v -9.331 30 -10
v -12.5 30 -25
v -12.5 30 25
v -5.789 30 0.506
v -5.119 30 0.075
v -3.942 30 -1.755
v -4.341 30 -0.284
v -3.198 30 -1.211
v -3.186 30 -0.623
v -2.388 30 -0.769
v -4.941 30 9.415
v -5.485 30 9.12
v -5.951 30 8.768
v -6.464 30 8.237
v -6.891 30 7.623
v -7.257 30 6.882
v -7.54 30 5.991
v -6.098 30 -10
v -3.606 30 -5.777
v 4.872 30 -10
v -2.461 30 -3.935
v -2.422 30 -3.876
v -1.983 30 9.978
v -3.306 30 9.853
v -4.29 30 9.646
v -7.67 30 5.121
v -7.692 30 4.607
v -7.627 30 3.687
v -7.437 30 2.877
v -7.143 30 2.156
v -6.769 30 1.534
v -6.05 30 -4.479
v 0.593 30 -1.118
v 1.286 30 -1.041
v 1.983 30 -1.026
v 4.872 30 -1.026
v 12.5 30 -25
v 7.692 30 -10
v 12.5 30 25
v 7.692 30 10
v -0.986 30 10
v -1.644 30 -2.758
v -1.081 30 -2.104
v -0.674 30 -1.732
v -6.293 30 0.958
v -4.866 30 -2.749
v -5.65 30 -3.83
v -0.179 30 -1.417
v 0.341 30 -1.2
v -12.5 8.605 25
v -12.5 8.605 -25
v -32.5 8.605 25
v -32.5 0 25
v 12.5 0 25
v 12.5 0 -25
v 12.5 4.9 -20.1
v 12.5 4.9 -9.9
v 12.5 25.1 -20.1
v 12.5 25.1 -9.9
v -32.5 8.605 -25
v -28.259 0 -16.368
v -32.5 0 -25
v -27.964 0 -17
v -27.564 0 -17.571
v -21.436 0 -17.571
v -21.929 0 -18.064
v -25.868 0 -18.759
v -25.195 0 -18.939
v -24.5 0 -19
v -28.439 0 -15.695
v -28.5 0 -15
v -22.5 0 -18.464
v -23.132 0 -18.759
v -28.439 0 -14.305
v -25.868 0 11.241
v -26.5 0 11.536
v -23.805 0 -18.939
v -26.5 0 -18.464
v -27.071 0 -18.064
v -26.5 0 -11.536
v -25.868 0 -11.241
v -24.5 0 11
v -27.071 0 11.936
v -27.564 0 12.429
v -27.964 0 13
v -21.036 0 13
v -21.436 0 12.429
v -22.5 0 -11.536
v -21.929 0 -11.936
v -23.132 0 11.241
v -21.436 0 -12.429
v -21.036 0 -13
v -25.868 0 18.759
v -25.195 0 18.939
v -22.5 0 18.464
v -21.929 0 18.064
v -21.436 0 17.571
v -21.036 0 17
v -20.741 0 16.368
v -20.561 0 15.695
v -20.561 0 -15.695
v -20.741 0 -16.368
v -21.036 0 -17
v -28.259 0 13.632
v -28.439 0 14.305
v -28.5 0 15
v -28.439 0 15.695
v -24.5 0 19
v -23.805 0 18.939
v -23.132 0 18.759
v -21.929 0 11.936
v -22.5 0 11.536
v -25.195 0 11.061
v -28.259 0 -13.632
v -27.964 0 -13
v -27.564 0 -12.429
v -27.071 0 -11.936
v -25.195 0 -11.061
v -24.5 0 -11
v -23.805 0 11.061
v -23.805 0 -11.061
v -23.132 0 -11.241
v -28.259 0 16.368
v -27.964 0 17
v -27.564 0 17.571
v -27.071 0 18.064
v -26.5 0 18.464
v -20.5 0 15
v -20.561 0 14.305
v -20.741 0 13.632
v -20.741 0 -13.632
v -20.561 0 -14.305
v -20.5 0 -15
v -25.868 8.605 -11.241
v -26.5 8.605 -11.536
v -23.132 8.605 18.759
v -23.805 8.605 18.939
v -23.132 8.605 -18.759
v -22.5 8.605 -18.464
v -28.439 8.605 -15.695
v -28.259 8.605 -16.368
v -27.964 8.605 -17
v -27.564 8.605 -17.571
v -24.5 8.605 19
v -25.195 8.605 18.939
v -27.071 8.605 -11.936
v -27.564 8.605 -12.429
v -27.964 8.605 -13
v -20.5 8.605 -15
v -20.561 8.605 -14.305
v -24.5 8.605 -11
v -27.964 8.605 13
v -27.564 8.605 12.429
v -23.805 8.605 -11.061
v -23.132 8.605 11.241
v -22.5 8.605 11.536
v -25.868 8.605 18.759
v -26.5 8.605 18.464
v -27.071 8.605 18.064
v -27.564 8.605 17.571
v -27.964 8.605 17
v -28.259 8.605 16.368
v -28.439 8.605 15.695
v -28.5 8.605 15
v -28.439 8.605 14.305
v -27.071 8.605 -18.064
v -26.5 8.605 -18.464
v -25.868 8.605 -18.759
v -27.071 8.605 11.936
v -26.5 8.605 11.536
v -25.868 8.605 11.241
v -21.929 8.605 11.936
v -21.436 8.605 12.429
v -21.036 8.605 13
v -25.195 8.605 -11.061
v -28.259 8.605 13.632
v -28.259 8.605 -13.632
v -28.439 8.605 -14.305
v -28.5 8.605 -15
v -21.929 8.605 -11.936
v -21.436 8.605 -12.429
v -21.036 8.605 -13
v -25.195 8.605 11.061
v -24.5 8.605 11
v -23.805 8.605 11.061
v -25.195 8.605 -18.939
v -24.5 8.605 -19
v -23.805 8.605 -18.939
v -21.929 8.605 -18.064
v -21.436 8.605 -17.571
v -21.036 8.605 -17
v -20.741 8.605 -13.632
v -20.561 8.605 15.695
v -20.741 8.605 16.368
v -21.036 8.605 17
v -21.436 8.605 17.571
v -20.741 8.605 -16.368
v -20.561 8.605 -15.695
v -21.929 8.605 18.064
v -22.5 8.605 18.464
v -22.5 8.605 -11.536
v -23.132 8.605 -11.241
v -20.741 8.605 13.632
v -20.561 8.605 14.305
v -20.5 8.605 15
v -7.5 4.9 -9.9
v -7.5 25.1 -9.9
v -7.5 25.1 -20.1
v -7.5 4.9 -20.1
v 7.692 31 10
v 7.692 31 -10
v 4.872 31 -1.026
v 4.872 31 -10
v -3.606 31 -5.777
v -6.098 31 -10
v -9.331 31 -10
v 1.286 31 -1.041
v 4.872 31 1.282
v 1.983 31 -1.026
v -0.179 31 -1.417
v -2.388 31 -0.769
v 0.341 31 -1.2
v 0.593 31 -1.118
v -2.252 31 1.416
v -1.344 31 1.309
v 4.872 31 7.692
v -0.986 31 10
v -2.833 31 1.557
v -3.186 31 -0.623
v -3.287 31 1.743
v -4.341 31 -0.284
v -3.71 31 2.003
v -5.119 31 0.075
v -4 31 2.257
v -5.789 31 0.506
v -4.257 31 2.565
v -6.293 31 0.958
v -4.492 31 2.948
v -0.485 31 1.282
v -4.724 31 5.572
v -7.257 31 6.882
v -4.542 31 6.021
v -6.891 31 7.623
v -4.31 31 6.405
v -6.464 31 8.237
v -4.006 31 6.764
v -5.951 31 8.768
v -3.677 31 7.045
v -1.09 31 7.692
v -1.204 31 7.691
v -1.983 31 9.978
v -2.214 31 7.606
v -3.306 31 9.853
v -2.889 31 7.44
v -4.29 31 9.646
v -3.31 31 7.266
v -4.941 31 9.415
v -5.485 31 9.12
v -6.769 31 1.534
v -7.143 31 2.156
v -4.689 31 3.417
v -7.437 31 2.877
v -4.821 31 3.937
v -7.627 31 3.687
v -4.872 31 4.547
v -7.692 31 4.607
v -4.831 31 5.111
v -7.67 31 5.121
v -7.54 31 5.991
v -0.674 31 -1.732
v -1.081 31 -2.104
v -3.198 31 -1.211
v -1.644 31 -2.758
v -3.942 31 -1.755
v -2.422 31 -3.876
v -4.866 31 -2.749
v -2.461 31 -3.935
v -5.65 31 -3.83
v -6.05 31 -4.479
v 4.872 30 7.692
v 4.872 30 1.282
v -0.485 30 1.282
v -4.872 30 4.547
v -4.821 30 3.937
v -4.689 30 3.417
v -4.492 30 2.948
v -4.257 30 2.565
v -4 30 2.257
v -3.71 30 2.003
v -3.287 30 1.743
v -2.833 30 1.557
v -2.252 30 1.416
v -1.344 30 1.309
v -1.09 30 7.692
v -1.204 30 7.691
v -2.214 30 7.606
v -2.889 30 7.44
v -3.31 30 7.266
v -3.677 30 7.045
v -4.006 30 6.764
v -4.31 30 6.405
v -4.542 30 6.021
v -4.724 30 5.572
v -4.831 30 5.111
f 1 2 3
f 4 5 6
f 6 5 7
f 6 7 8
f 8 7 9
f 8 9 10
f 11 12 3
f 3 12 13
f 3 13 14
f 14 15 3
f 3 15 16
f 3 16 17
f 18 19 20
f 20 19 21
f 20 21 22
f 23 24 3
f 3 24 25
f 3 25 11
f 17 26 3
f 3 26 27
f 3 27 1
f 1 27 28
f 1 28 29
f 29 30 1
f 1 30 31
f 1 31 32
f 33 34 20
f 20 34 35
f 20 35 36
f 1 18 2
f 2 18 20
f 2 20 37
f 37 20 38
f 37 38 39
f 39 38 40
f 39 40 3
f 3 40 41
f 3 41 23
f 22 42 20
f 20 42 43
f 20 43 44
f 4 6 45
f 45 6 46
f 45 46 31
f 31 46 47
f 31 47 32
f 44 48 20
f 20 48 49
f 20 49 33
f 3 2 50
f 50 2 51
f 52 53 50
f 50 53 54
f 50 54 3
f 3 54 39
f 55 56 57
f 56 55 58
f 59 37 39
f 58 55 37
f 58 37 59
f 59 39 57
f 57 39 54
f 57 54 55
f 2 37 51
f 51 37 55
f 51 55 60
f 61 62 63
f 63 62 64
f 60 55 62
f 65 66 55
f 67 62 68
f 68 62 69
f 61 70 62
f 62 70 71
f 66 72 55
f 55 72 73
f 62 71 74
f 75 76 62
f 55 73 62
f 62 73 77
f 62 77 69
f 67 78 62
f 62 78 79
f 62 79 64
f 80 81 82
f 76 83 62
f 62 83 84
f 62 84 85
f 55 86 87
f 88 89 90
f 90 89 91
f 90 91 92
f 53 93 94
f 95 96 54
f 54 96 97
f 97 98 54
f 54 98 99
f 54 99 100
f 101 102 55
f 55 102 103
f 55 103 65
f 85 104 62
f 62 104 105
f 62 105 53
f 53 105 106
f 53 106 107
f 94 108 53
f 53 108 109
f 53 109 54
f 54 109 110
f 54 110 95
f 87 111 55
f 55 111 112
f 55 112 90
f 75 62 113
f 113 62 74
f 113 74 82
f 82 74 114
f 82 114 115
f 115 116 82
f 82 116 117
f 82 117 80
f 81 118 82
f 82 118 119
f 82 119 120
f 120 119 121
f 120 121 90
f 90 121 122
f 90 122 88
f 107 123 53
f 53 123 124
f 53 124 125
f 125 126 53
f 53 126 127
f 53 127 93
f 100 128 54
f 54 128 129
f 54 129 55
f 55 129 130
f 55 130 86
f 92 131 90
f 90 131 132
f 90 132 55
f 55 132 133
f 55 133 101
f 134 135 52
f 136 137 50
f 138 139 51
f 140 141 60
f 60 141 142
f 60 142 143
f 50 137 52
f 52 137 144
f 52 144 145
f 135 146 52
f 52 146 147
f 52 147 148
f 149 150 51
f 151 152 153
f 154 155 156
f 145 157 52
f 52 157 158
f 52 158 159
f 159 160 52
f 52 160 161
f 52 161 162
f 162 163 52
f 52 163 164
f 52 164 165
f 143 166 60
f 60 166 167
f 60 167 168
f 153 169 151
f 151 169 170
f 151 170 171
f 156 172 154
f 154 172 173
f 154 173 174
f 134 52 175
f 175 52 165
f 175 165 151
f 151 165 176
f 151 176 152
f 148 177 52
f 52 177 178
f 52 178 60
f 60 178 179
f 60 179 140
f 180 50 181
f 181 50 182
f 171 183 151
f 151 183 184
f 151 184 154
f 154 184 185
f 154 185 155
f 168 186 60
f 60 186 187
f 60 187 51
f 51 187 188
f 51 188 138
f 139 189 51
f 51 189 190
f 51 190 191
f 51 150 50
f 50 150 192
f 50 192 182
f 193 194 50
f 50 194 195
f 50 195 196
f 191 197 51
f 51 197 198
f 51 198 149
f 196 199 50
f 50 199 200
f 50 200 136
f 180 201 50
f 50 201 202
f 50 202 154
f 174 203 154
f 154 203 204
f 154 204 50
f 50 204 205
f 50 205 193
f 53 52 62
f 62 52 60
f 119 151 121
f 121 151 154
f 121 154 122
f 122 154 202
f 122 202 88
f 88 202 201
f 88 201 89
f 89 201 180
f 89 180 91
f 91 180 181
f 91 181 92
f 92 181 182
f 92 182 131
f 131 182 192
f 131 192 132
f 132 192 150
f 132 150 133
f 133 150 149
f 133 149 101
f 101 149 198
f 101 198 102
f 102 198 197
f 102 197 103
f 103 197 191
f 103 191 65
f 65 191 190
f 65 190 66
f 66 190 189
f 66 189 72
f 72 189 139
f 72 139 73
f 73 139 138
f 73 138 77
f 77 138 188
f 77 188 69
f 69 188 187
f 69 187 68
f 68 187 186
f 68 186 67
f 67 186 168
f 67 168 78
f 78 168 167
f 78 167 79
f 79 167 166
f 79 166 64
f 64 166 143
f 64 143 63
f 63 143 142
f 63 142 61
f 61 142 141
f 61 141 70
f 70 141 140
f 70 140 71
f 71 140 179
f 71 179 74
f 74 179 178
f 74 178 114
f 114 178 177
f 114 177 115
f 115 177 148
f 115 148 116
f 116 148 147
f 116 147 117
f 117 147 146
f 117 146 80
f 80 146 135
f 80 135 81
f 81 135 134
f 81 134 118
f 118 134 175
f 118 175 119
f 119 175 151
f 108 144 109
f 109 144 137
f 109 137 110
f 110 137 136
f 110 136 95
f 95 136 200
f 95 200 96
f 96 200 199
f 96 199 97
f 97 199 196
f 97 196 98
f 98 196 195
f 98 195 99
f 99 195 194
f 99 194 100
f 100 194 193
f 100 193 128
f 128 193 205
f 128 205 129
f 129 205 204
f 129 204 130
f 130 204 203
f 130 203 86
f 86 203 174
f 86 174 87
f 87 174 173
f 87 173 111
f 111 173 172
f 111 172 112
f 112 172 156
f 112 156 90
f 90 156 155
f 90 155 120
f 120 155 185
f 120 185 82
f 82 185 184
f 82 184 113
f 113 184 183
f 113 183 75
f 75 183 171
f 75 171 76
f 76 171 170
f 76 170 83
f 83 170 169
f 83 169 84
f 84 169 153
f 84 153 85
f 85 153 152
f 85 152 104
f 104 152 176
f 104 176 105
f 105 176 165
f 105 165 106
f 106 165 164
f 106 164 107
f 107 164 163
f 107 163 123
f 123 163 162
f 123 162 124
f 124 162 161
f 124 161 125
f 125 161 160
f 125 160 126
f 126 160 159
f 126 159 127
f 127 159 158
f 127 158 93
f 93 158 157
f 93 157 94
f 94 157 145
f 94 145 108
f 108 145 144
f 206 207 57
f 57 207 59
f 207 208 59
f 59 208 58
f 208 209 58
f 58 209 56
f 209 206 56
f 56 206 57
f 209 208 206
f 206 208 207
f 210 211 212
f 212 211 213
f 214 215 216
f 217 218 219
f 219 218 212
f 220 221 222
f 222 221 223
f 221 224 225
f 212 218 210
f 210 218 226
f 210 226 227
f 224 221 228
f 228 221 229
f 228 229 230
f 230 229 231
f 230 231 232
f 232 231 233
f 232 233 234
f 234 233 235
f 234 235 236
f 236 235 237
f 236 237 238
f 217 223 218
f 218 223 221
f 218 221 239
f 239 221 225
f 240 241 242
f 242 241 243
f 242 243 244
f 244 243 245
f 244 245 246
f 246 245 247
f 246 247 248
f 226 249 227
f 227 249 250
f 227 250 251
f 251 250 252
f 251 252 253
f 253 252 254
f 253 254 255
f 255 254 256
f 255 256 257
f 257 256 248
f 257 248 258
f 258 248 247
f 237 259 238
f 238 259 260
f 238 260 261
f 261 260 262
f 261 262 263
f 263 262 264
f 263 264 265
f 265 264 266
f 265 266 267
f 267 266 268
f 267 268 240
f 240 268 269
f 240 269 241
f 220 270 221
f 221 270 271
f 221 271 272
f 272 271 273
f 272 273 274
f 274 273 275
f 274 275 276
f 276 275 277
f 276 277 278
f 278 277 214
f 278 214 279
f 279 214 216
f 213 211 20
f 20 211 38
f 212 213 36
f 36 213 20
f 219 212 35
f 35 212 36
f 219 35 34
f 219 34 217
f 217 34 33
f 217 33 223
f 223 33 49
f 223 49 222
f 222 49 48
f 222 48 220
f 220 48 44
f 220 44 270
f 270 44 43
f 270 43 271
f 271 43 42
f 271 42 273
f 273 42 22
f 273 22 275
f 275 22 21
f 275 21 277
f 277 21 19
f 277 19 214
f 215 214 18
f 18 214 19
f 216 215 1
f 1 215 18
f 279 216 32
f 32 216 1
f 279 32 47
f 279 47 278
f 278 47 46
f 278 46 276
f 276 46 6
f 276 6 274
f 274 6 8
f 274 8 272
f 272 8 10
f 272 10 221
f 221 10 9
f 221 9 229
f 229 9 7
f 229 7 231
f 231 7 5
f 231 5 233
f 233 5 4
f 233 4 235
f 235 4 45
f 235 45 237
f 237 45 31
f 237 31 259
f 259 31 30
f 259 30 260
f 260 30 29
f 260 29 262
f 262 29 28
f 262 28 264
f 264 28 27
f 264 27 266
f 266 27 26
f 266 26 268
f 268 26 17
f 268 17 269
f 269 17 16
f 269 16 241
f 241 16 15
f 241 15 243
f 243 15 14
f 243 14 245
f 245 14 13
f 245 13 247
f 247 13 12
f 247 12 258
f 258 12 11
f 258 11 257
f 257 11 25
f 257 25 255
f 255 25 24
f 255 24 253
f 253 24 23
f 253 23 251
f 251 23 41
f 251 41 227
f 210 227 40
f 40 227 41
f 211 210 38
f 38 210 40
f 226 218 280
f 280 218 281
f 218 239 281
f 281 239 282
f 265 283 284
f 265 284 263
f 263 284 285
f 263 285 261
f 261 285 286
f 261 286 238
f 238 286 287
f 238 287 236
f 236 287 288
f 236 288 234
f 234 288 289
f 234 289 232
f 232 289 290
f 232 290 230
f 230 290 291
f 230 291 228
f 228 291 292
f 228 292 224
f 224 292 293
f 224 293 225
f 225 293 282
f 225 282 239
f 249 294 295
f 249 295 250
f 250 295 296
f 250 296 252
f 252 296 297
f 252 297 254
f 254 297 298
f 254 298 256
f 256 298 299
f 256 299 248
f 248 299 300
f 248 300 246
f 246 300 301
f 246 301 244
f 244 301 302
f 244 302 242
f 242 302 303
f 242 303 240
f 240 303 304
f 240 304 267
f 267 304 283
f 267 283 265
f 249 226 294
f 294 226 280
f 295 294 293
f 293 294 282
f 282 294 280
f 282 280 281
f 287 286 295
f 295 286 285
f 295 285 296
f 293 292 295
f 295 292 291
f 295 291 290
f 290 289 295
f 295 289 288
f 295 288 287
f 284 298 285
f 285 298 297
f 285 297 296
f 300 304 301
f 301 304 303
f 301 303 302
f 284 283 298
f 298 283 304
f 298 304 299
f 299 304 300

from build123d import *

# Parameters (mm, degrees)
SKETCH1_W           = 25
SKETCH1_H           = 50
BOSS_EXTRUDE1_DEPTH = 30
SKETCH2_W           = 50
SKETCH2_H           = 8.605036789
BOSS_EXTRUDE2_DEPTH = 20
SKETCH3_R           = 4
CUT_EXTRUDE1_DEPTH  = 47.249264327
SKETCH4_W           = 10.2
SKETCH4_H           = 20.2
CUT_EXTRUDE2_DEPTH  = 20
BOSS_EXTRUDE3_DEPTH = 1


with BuildPart() as part:
    # Sketch1 → Boss-Extrude1 (new body)
    with BuildSketch(Plane(origin=(0, 0, 0), x_dir=(1, 0, 0), z_dir=(0, 1, 0))):
        Rectangle(SKETCH1_W, SKETCH1_H)
    extrude(amount=BOSS_EXTRUDE1_DEPTH)

    # Sketch2 → Boss-Extrude2 (add)
    with BuildSketch(Plane.ZY.offset(12.5)):
        with Locations((0, 4.302518394)):
            Rectangle(SKETCH2_W, SKETCH2_H)
    extrude(amount=BOSS_EXTRUDE2_DEPTH)

    # Sketch3 → Cut-Extrude1 (cut, through all)
    with BuildSketch(Plane(origin=(0, 8.605036789, 0), x_dir=(1, 0, 0), z_dir=(0, 1, 0))):
        with Locations(Location((-24.5, 15, 0), (0, 0, 270))):
            Circle(SKETCH3_R)
        with Locations(Location((-24.5, -15, 0), (0, 0, 270))):
            Circle(SKETCH3_R)
    extrude(amount=-CUT_EXTRUDE1_DEPTH, mode=Mode.SUBTRACT)

    # Sketch4 → Cut-Extrude2 (cut)
    with BuildSketch(Plane(origin=(12.5, 0, 0), x_dir=(0, 0, -1), z_dir=(1, 0, 0))):
        with Locations((15, 15)):
            Rectangle(SKETCH4_W, SKETCH4_H)
    extrude(amount=-CUT_EXTRUDE2_DEPTH, mode=Mode.SUBTRACT)

    # Sketch5 → Boss-Extrude3 (add)
    with BuildSketch(Plane(origin=(0, 30, 0), x_dir=(1, 0, 0), z_dir=(0, 1, 0))):
        with BuildLine():
            Line((7.692307692, 10), (7.692307692, -10))
            Line((7.692307692, -10), (-0.985576923, -10))
            add(Edge.make_bspline(
                [(-0.985576923, -10), (-1.189915508, -9.998406517), (-1.585388921, -9.995322517), (-2.158891161, -9.97328499), (-2.692933181, -9.926466249), (-3.190880742, -9.87417544), (-3.651881782, -9.796967041), (-4.076156001, -9.706387661), (-4.462076213, -9.599333368), (-4.812578849, -9.472790754), (-5.13779529, -9.329673653), (-5.439160579, -9.1529927), (-5.729614752, -8.959721513), (-5.997579665, -8.730765608), (-6.255124362, -8.484777239), (-6.491466209, -8.20944831), (-6.713599726, -7.911670049), (-6.98368474, -7.480457665), (-7.26734754, -6.902448182), (-7.511671117, -6.168093018), (-7.667028651, -5.399134972), (-7.683798939, -4.873873893), (-7.692307692, -4.607371795)],
                knots=[0, 0, 0, 0, 1.242075696, 2.40389213, 3.487198984, 4.500157661, 5.446319301, 6.326791195, 7.136300648, 7.878370406, 8.590488565, 9.292260633, 9.999224673, 10.708050372, 11.431369221, 12.162165018, 12.910600795, 13.687589445, 15.252257874, 16.810406251, 18.381693487, 20, 20, 20, 20], degree=3))
            add(Edge.make_bspline(
                [(-7.692307692, -4.607371795), (-7.688394011, -4.436288612), (-7.680664221, -4.098387595), (-7.621454116, -3.601582104), (-7.51431592, -3.126906532), (-7.376939813, -2.670193942), (-7.1888858, -2.237951011), (-6.971132957, -1.821215885), (-6.700987613, -1.431932834), (-6.399355855, -1.057091635), (-6.048612719, -0.71360816), (-5.658467411, -0.39614679), (-5.217190586, -0.123711561), (-4.739255324, 0.129469087), (-4.212344466, 0.337396306), (-3.644404331, 0.520482963), (-3.031039376, 0.661647942), (-2.605906991, 0.732754289), (-2.387820513, 0.769230769)],
                knots=[0, 0, 0, 0, 0.982645791, 1.940792824, 2.867691729, 3.775150443, 4.675643875, 5.571354211, 6.471357401, 7.392684514, 8.331098131, 9.285922955, 10.275520706, 11.304845665, 12.388884831, 13.524255008, 14.729980297, 16, 16, 16, 16], degree=3))
            add(Edge.make_bspline(
                [(-2.387820513, 0.769230769), (-2.549345996, 0.849743746), (-2.855664626, 1.002429402), (-3.272498706, 1.255059029), (-3.637663897, 1.492888205), (-3.845092801, 1.671226556), (-3.942307692, 1.754807692)],
                knots=[0, 0, 0, 0, 1.172551213, 2.223638478, 3.167479604, 4, 4, 4, 4], degree=3))
            add(Edge.make_bspline(
                [(-3.942307692, 1.754807692), (-4.131560958, 1.939760877), (-4.519688241, 2.319069404), (-5.049338611, 2.971134565), (-5.573421338, 3.688219618), (-5.888069662, 4.2107727), (-6.049679487, 4.479166667)],
                knots=[0, 0, 0, 0, 0.918170575, 1.883016652, 2.912673989, 4, 4, 4, 4], degree=3))
            Line((-6.049679487, 4.479166667), (-9.330929487, 10))
            Line((-9.330929487, 10), (-6.09775641, 10))
            Line((-6.09775641, 10), (-3.605769231, 5.77724359))
            add(Edge.make_bspline(
                [(-3.605769231, 5.77724359), (-3.516164402, 5.629086783), (-3.342524957, 5.34198322), (-3.091798881, 4.922621923), (-2.845639404, 4.536751784), (-2.618440056, 4.172360633), (-2.395792195, 3.839058208), (-2.196203285, 3.524230537), (-1.99576396, 3.245712753), (-1.765615132, 2.91110533), (-1.484546035, 2.549334189), (-1.156558274, 2.177690005), (-0.854995349, 1.869836465), (-0.473923576, 1.576103263), (-8.0808e-05, 1.307161834), (0.399436219, 1.179583217), (0.592948718, 1.117788462)],
                knots=[0, 0, 0, 0, 1.130591283, 2.190900266, 3.190104209, 4.119071823, 4.994606968, 5.807262858, 6.55236009, 7.234593472, 8.459046683, 9.540234366, 10.471327768, 11.266723835, 12.676093724, 14, 14, 14, 14], degree=3))
            add(Edge.make_bspline(
                [(0.592948718, 1.117788462), (0.674242958, 1.103128347), (0.859840146, 1.069658866), (1.174983707, 1.047799895), (1.556818794, 1.024599522), (1.833541189, 1.025275503), (1.983173077, 1.025641026)],
                knots=[0, 0, 0, 0, 0.709978628, 1.620902492, 2.713552433, 4, 4, 4, 4], degree=3))
            Line((1.983173077, 1.025641026), (4.871794872, 1.025641026))
            Line((4.871794872, 1.025641026), (4.871794872, 10))
            Line((4.871794872, 10), (7.692307692, 10))
        make_face()
        with BuildLine():
            Line((4.871794872, -1.282051282), (-0.484775641, -1.282051282))
            add(Edge.make_bspline(
                [(-0.484775641, -1.282051282), (-0.753386517, -1.286217416), (-1.255529355, -1.294005613), (-1.957518176, -1.361528247), (-2.558000395, -1.467075801), (-3.064646298, -1.627384754), (-3.490432782, -1.842070076), (-3.859462924, -2.104609449), (-4.169752828, -2.430321342), (-4.424939479, -2.80379836), (-4.624425797, -3.210810832), (-4.763816724, -3.641583566), (-4.857398907, -4.087856282), (-4.866967535, -4.393220511), (-4.871794872, -4.547275641)],
                knots=[0, 0, 0, 0, 1.546056516, 2.890207646, 4.055830773, 5.050253158, 5.937355789, 6.790906573, 7.644595853, 8.512568064, 9.38593768, 10.244184789, 11.114197691, 12, 12, 12, 12], degree=3))
            add(Edge.make_bspline(
                [(-4.871794872, -4.547275641), (-4.868088958, -4.659544766), (-4.86083016, -4.879447), (-4.822372143, -5.202097101), (-4.749202425, -5.50786025), (-4.648165007, -5.798940542), (-4.520236894, -6.075969951), (-4.363033481, -6.337858904), (-4.177365929, -6.583269781), (-3.964383478, -6.81341075), (-3.719926868, -7.02284832), (-3.440676061, -7.203538998), (-3.128860999, -7.357089463), (-2.784111469, -7.478956731), (-2.407515729, -7.576430897), (-1.996929252, -7.641277267), (-1.554229928, -7.688199899), (-1.24746496, -7.690912847), (-1.08974359, -7.692307692)],
                knots=[0, 0, 0, 0, 0.965235723, 1.89061323, 2.787065514, 3.661873922, 4.534873316, 5.404925039, 6.281839248, 7.175200054, 8.095223355, 9.040740021, 10.02630299, 11.075573487, 12.177989335, 13.364883635, 14.645170704, 16, 16, 16, 16], degree=3))
            Line((-1.08974359, -7.692307692), (4.871794872, -7.692307692))
            Line((4.871794872, -7.692307692), (4.871794872, -1.282051282))
        make_face(mode=Mode.SUBTRACT)
    extrude(amount=BOSS_EXTRUDE3_DEPTH)


solid = part.part
